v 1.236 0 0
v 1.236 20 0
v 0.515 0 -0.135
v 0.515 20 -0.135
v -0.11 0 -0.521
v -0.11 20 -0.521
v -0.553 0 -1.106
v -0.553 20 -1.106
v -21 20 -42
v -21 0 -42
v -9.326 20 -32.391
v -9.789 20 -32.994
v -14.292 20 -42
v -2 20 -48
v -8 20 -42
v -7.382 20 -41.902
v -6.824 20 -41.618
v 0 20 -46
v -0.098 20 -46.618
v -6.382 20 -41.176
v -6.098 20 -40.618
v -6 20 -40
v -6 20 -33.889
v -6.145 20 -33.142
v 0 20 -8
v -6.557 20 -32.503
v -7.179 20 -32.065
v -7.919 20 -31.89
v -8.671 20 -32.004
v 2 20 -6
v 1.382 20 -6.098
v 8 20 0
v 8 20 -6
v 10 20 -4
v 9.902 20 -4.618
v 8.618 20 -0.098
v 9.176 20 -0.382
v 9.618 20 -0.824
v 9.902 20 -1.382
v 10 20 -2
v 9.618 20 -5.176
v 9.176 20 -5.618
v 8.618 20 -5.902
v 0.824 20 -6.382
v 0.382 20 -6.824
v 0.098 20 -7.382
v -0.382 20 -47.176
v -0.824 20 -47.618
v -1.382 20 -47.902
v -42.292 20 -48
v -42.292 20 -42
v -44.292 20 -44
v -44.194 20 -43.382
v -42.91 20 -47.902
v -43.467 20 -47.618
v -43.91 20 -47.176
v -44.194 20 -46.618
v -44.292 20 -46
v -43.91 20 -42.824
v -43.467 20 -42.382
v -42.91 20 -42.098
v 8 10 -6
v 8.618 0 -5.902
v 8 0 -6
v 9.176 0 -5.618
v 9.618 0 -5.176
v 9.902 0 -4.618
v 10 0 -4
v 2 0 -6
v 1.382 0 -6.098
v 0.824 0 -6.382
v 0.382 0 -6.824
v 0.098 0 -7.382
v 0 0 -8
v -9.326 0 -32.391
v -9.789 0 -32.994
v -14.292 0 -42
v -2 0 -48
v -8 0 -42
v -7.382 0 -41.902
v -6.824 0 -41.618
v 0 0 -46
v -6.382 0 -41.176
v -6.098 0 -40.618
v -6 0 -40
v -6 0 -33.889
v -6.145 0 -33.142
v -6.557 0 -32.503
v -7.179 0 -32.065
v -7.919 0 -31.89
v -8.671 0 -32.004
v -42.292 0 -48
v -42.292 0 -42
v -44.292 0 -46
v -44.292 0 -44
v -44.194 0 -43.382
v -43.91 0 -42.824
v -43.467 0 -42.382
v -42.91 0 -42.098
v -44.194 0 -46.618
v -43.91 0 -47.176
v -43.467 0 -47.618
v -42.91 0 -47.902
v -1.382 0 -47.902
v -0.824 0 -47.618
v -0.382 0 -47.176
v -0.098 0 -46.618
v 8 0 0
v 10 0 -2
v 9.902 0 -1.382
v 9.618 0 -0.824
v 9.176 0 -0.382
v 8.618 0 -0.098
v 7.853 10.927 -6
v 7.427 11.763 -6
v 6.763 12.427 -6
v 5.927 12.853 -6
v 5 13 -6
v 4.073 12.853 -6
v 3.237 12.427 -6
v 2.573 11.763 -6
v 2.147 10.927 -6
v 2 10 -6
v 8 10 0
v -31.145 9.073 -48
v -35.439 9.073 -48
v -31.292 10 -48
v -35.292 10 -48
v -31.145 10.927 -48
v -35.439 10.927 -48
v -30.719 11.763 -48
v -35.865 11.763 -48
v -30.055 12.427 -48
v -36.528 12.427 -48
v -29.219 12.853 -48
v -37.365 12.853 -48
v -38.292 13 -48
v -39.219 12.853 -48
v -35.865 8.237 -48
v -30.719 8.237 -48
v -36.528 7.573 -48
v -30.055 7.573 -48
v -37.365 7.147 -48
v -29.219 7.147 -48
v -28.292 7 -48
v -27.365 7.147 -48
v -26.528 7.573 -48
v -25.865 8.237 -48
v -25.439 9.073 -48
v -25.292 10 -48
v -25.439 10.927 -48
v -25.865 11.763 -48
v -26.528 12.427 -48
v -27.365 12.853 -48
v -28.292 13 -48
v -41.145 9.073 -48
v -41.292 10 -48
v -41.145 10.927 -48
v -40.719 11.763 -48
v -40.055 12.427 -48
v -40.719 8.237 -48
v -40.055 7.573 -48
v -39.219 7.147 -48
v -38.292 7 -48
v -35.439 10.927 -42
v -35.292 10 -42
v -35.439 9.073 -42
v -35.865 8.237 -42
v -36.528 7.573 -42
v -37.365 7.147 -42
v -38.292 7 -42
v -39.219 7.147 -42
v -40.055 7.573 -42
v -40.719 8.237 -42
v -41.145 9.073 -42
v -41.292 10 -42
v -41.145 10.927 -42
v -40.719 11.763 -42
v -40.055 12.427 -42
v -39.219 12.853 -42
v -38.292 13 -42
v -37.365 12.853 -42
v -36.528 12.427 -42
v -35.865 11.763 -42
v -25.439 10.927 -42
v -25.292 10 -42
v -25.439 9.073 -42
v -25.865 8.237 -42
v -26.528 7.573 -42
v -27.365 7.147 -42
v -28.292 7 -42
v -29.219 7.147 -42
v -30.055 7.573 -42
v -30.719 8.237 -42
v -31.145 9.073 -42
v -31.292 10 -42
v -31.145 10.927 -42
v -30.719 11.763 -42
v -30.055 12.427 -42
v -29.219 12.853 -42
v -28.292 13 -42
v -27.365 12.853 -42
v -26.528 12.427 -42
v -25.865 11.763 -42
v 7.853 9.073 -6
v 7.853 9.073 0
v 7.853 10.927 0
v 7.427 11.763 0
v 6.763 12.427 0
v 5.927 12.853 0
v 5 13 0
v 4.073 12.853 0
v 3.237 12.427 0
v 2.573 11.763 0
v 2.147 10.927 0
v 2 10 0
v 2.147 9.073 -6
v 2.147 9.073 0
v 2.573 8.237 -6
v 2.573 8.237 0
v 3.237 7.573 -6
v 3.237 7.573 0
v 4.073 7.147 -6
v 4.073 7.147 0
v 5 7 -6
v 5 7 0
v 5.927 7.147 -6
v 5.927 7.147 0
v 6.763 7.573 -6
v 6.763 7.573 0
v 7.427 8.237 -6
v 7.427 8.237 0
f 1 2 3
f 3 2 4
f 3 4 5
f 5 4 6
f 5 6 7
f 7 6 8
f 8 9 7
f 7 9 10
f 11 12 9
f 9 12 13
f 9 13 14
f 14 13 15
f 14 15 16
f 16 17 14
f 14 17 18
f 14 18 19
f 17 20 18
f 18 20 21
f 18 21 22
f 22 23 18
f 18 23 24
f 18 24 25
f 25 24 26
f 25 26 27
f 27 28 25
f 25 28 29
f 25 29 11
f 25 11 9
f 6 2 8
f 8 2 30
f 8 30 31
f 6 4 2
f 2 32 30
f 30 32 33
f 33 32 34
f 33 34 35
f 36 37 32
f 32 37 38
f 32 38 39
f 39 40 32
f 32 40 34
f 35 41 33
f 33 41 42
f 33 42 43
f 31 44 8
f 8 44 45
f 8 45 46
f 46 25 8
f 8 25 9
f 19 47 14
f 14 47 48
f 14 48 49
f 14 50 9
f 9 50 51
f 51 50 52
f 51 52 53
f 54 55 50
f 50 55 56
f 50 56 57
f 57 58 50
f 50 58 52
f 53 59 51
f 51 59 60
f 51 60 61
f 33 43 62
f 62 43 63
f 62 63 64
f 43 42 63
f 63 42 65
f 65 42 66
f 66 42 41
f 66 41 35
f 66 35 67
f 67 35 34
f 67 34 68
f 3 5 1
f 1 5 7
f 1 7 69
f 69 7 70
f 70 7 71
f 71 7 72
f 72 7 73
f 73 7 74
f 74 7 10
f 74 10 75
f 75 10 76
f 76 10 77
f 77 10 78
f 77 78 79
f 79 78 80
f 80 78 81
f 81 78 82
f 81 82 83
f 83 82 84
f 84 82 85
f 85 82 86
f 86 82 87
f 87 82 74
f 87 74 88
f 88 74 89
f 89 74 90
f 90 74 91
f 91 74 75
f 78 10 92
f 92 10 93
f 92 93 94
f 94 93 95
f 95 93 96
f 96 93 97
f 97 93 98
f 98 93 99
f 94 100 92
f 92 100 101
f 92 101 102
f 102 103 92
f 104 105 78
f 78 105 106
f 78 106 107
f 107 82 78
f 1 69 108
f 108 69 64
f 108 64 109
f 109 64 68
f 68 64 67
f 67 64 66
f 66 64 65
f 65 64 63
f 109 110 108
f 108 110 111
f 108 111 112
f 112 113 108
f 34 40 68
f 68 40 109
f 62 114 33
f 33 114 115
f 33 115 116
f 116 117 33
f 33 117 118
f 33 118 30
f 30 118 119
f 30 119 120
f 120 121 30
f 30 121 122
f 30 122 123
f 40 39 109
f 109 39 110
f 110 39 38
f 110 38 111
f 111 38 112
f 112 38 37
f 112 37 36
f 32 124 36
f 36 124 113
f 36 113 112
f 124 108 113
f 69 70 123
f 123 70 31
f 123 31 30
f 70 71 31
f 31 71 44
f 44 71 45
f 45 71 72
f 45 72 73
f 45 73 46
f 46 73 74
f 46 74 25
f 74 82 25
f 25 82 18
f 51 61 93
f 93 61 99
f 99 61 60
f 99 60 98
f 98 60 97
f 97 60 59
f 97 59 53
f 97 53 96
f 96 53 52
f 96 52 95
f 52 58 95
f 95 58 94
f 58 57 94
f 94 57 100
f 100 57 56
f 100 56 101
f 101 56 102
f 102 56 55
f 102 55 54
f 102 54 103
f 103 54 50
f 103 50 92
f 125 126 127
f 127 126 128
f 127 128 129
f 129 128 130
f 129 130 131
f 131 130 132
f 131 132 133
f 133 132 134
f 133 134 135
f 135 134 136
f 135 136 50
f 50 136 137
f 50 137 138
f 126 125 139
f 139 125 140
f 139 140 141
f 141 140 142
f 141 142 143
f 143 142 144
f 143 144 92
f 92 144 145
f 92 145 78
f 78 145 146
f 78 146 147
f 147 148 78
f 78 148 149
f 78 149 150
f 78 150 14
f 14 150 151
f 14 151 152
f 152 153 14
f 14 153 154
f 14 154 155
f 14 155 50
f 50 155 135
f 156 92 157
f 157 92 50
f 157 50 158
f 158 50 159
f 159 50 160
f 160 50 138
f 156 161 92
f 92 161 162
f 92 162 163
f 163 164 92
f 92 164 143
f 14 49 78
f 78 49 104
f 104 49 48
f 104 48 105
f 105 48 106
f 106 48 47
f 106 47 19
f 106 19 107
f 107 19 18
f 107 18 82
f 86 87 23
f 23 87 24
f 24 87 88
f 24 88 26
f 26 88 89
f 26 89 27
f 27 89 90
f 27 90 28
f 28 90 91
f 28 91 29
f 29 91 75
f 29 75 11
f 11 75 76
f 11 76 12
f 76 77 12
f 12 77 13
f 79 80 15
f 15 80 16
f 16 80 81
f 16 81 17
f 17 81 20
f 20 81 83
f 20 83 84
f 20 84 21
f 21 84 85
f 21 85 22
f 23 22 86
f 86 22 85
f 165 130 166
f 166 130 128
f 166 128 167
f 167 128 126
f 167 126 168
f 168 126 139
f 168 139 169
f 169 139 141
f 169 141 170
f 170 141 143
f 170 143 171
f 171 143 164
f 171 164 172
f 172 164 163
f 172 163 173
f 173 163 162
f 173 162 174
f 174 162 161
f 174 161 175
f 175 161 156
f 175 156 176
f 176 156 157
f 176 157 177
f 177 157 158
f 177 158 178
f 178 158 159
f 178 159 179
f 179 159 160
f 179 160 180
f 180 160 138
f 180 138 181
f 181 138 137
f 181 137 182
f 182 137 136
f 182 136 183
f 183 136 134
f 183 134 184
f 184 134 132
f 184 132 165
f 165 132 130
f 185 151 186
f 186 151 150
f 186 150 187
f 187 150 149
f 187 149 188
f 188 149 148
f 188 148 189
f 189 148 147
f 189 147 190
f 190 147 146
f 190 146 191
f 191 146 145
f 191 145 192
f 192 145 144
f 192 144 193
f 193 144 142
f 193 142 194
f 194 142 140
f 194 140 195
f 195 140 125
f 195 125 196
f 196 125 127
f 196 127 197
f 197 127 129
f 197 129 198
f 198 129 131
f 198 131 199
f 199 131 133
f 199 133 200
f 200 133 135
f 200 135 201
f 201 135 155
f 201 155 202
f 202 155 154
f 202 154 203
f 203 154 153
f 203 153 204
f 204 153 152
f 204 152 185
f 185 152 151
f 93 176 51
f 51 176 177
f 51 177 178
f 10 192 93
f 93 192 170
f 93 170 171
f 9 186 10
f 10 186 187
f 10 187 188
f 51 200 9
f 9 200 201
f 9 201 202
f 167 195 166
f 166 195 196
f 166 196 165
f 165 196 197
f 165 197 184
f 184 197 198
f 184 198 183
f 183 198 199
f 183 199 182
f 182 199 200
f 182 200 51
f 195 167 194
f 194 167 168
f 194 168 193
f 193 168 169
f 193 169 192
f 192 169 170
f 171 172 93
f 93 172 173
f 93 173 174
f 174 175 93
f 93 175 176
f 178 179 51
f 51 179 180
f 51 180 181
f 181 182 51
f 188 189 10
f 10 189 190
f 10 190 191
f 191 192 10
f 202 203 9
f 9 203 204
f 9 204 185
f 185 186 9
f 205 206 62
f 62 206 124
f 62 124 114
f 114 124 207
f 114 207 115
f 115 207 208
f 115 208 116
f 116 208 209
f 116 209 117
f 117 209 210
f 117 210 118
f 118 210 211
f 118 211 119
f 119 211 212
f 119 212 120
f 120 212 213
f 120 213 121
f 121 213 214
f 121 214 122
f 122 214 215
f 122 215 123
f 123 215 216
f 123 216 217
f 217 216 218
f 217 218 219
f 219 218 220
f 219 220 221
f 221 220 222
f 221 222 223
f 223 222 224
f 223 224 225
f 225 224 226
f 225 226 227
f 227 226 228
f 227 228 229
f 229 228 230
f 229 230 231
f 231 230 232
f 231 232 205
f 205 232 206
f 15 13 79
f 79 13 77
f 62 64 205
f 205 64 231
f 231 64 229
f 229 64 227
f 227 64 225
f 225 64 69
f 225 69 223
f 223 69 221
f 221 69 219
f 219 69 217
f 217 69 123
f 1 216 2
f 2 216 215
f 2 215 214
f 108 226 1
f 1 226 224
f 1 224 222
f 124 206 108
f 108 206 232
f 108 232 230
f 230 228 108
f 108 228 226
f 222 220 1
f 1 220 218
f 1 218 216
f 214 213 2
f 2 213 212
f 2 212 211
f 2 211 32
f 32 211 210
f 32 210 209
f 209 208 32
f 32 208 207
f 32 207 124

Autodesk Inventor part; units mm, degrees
ref_plane "YZ Plane" through (0, 0, 0) normal (1, 0, 0) x (0, 1, 0)
ref_plane "XZ Plane" through (0, 0, 0) normal (0, 1, 0) x (-1, 0, 0)
ref_plane "XY Plane" through (0, 0, 0) normal (0, 0, 1) x (1, 0, 0)
sketch "Sketch1" plane through (0, 0, 0) normal (0, 1, 0) x (-1, 0, 0)
  line L0 (0, 0) -> (0, -48)
  line L1 (0, -48) -> (24, -48)
  line L2 (24, -48) -> (0, 0)
  line L3 (6, -25.4164) -> (6, -42)
  line L4 (6, -42) -> (14.2918, -42)
  line L5 (14.2918, -42) -> (6, -25.4164)
  line L6 (0, 0) -> (-10, 0)
  line L7 (-10, 0) -> (-10, -6)
  line L8 (-10, -6) -> (0, -6)
  line L9 (0, -6) -> (0, 0)
  dimension "d0" = 48
  dimension "d1" = 24
  dimension "d4" = 6
  dimension "d5" = 10
  dimension "d6" = 6
extrude "Extrusion1" add sketch "Sketch1" along normal blind 20
sketch "Sketch2" plane through (0, 0, 0) normal (0, 0, 1) x (1, 0, 0)
  circle A0 centre (5, 10) radius 3
  line L0 (0, 0) -> (10, 0) projected
  line L1 (0, 0) -> (0, 20) projected
  dimension "d9" = 6
  dimension "d10" = 10
  dimension "d11" = 5
extrude "Extrusion2" cut sketch "Sketch2" against normal through all
sketch "Sketch3" plane through (0, 0, 0) normal (0, -1, 0) x (1, 0, 0)
  line L0 (-14.2918, -42) -> (-6, -42) projected
  line L1 (-14.2918, -42) -> (-44.2918, -42)
  line L2 (-44.2918, -42) -> (-19.2918, -42)
  line L3 (-19.2918, -42) -> (-19.2918, -48)
  line L4 (-19.2918, -48) -> (-44.2918, -48)
  line L5 (-44.2918, -48) -> (-44.2918, -42)
  point P0 (0, 0)
  dimension "d14" = 30
  dimension "d15" = 25
  dimension "d16" = 6
extrude "Extrusion3" add sketch "Sketch3" against normal blind 20
sketch "Sketch4" plane through (0, 0, -48) normal (0, 0, -1) x (-1, 0, 0)
  circle A0 centre (38.2918, 10) radius 3
  circle A1 centre (28.2918, 10) radius 3
  line L0 (44.2918, 0) -> (44.2918, 20) projected
  line L1 (0, 0) -> (44.2918, 0) projected
  dimension "d19" = 6
  dimension "d20" = 6
  dimension "d21" = 6
  dimension "d22" = 10
  dimension "d23" = 10
  dimension "d24" = 10
extrude "Extrusion4" cut sketch "Sketch4" against normal through all
fillet "Fillet1" radius 2 2 edges at (-6, 10, -42) (-6, 10, -25.4164)
fillet "Fillet2" radius 2 3 edges at (0, 10, -48) (-44.2918, 10, -48) (-44.2918, 10, -42)
fillet "Fillet3" radius 2 1 edges at (0, 10, -6)
fillet "Fillet4" radius 2 3 edges at (10, 10, 0) (10, 10, -6) (0, 10, 0)
properties part number "RightAngle_PulleySupport"
